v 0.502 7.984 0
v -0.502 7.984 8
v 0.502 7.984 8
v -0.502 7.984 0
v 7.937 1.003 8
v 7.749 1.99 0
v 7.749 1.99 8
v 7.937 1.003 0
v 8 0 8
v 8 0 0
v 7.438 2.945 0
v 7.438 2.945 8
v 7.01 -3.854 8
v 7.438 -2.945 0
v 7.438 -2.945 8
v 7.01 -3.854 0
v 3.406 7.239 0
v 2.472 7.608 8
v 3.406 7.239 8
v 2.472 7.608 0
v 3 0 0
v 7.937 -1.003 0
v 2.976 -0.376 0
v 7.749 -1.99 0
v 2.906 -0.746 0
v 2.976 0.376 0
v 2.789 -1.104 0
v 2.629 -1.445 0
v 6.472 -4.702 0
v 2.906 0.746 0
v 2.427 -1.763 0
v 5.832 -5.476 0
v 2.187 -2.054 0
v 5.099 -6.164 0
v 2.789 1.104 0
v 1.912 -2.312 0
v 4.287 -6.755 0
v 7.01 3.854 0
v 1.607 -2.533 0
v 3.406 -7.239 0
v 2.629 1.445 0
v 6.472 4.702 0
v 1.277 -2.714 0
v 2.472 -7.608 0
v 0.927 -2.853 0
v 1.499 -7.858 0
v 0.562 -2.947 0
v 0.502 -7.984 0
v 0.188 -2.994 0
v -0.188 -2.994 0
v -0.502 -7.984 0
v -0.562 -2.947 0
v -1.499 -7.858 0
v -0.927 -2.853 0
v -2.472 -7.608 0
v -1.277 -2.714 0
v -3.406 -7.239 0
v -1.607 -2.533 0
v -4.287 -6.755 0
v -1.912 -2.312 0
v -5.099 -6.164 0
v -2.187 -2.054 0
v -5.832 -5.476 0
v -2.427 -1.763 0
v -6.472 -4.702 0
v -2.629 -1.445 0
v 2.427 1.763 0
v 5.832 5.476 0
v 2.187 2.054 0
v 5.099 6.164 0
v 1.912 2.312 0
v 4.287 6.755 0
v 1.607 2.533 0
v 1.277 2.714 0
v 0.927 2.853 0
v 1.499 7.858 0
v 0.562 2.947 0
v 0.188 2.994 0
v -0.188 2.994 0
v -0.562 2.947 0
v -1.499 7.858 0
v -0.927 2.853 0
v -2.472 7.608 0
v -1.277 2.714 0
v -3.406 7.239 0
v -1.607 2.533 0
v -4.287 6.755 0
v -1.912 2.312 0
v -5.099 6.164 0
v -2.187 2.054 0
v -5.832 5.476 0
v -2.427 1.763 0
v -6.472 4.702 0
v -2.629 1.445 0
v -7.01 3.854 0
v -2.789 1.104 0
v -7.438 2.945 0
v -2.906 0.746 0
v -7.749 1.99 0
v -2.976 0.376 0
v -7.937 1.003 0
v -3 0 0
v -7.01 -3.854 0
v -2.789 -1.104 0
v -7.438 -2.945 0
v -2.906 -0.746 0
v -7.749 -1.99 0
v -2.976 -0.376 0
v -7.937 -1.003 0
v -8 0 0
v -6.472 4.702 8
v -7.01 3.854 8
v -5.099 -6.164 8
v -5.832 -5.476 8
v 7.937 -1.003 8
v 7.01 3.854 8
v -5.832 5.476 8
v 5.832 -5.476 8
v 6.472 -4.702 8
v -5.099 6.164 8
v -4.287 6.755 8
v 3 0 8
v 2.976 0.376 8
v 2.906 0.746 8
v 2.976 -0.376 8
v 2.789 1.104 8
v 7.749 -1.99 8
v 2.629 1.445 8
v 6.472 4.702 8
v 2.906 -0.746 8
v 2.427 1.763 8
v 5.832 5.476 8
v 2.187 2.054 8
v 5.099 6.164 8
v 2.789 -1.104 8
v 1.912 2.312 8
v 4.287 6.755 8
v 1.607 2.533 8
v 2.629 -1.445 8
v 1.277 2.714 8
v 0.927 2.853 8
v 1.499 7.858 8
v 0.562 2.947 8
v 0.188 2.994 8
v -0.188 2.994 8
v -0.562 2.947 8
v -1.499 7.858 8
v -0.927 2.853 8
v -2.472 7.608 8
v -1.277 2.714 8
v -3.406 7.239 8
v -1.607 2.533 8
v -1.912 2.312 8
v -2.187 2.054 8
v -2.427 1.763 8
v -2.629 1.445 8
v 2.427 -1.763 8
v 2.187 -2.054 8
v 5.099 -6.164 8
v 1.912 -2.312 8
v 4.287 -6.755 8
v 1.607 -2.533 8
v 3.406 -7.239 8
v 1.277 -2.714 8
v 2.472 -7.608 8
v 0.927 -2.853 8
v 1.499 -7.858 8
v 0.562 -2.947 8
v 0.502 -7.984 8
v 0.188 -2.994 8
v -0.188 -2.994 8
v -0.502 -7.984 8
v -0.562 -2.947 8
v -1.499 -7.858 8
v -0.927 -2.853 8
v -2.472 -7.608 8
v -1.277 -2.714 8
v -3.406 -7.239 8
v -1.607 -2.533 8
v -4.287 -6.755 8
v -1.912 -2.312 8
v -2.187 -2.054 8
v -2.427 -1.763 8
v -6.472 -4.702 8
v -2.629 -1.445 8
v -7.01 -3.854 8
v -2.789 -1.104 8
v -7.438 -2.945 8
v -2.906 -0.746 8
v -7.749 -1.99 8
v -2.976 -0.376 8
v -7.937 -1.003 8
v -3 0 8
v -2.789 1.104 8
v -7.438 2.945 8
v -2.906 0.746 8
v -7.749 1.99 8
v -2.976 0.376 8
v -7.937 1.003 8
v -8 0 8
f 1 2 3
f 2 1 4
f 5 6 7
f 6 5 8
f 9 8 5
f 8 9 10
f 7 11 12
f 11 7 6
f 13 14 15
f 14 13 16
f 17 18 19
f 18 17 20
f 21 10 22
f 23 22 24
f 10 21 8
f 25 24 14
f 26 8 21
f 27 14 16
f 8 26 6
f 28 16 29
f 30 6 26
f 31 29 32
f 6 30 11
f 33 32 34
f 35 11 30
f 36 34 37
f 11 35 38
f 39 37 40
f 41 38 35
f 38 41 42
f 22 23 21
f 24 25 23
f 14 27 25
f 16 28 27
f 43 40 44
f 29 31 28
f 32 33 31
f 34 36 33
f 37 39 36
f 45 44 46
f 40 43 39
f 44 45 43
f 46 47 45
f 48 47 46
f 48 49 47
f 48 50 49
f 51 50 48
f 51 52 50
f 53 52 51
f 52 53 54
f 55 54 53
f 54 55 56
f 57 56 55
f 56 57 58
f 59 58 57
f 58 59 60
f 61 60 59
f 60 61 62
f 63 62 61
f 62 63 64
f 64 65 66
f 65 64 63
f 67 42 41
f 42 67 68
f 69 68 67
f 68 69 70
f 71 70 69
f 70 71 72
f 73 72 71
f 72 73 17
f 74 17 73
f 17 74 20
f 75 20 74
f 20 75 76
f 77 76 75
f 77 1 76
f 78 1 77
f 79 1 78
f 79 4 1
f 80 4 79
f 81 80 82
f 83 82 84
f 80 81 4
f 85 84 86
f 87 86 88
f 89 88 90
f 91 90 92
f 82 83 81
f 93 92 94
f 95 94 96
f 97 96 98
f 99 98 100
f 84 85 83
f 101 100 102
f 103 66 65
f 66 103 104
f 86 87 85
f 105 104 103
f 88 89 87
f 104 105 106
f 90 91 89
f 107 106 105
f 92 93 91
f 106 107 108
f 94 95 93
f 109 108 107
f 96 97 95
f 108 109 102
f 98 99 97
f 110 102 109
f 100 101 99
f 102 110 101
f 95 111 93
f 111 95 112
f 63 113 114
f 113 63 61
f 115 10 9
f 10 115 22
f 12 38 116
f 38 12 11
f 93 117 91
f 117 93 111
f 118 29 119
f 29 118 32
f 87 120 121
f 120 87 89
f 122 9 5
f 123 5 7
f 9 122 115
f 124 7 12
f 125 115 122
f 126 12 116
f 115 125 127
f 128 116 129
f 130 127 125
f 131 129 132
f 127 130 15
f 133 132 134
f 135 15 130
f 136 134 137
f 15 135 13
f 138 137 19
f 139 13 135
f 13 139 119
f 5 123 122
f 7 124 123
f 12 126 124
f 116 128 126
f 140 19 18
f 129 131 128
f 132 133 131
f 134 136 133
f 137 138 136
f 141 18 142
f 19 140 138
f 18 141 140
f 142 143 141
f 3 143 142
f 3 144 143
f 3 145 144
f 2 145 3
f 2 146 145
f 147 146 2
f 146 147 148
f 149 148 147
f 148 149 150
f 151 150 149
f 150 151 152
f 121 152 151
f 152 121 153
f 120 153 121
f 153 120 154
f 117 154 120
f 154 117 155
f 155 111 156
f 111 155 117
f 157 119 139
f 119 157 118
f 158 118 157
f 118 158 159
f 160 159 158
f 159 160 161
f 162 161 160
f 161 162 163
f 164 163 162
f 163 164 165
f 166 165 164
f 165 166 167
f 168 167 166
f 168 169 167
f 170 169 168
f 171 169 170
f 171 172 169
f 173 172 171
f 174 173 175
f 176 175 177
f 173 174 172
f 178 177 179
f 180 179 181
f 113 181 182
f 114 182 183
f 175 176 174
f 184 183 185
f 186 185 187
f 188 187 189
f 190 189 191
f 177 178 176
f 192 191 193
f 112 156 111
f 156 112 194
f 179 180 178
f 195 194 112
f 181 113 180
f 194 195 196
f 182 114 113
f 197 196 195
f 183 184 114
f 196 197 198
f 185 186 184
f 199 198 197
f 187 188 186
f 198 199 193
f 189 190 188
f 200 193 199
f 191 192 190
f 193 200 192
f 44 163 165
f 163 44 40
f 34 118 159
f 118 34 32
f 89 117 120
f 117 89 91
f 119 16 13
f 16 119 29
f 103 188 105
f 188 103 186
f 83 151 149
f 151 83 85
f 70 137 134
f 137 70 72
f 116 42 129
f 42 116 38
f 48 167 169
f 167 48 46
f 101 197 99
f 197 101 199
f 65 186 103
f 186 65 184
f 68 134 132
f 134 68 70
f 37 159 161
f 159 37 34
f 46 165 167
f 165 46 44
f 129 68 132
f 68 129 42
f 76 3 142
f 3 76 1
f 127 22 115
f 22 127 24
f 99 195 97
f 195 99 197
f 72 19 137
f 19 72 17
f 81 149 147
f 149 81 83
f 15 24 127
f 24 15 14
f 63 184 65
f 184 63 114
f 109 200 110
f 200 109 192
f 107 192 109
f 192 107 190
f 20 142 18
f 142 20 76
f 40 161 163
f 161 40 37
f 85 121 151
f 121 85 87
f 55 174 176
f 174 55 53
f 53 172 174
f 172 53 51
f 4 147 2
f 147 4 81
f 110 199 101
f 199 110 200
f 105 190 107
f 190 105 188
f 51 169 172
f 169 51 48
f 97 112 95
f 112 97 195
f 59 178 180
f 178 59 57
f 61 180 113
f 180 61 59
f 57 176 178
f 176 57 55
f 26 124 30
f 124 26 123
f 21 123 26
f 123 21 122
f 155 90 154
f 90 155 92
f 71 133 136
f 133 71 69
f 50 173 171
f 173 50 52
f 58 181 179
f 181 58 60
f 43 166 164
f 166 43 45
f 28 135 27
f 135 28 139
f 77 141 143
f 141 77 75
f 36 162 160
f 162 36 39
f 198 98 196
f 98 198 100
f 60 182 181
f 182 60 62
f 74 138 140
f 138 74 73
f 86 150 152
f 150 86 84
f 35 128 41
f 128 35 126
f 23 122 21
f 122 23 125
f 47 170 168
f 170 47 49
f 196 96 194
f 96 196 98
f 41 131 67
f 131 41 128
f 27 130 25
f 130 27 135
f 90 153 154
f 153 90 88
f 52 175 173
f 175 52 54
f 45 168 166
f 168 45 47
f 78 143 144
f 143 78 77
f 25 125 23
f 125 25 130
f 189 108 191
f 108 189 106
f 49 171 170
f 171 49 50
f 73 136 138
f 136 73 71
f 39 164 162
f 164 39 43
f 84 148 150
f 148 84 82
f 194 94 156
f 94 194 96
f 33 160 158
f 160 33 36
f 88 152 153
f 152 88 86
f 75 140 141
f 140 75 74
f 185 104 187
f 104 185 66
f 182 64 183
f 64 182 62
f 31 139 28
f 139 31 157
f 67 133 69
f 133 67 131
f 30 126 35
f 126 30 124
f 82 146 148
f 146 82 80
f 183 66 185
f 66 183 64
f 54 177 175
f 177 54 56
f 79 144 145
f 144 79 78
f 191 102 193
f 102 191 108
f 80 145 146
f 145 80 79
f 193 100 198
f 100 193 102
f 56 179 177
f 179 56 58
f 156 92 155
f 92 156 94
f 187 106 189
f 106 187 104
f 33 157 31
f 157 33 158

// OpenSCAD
height = 8;
inner_cyl_dia 	= 5;
outer_cyl_dia	= 8;

anti_warp = .2;

$fn = $preview ? 25 : 50;

difference() {
	cylinder(height, r = outer_cyl_dia);
	cylinder(height, r = inner_cyl_dia * (1 + anti_warp)/ 2);
}
